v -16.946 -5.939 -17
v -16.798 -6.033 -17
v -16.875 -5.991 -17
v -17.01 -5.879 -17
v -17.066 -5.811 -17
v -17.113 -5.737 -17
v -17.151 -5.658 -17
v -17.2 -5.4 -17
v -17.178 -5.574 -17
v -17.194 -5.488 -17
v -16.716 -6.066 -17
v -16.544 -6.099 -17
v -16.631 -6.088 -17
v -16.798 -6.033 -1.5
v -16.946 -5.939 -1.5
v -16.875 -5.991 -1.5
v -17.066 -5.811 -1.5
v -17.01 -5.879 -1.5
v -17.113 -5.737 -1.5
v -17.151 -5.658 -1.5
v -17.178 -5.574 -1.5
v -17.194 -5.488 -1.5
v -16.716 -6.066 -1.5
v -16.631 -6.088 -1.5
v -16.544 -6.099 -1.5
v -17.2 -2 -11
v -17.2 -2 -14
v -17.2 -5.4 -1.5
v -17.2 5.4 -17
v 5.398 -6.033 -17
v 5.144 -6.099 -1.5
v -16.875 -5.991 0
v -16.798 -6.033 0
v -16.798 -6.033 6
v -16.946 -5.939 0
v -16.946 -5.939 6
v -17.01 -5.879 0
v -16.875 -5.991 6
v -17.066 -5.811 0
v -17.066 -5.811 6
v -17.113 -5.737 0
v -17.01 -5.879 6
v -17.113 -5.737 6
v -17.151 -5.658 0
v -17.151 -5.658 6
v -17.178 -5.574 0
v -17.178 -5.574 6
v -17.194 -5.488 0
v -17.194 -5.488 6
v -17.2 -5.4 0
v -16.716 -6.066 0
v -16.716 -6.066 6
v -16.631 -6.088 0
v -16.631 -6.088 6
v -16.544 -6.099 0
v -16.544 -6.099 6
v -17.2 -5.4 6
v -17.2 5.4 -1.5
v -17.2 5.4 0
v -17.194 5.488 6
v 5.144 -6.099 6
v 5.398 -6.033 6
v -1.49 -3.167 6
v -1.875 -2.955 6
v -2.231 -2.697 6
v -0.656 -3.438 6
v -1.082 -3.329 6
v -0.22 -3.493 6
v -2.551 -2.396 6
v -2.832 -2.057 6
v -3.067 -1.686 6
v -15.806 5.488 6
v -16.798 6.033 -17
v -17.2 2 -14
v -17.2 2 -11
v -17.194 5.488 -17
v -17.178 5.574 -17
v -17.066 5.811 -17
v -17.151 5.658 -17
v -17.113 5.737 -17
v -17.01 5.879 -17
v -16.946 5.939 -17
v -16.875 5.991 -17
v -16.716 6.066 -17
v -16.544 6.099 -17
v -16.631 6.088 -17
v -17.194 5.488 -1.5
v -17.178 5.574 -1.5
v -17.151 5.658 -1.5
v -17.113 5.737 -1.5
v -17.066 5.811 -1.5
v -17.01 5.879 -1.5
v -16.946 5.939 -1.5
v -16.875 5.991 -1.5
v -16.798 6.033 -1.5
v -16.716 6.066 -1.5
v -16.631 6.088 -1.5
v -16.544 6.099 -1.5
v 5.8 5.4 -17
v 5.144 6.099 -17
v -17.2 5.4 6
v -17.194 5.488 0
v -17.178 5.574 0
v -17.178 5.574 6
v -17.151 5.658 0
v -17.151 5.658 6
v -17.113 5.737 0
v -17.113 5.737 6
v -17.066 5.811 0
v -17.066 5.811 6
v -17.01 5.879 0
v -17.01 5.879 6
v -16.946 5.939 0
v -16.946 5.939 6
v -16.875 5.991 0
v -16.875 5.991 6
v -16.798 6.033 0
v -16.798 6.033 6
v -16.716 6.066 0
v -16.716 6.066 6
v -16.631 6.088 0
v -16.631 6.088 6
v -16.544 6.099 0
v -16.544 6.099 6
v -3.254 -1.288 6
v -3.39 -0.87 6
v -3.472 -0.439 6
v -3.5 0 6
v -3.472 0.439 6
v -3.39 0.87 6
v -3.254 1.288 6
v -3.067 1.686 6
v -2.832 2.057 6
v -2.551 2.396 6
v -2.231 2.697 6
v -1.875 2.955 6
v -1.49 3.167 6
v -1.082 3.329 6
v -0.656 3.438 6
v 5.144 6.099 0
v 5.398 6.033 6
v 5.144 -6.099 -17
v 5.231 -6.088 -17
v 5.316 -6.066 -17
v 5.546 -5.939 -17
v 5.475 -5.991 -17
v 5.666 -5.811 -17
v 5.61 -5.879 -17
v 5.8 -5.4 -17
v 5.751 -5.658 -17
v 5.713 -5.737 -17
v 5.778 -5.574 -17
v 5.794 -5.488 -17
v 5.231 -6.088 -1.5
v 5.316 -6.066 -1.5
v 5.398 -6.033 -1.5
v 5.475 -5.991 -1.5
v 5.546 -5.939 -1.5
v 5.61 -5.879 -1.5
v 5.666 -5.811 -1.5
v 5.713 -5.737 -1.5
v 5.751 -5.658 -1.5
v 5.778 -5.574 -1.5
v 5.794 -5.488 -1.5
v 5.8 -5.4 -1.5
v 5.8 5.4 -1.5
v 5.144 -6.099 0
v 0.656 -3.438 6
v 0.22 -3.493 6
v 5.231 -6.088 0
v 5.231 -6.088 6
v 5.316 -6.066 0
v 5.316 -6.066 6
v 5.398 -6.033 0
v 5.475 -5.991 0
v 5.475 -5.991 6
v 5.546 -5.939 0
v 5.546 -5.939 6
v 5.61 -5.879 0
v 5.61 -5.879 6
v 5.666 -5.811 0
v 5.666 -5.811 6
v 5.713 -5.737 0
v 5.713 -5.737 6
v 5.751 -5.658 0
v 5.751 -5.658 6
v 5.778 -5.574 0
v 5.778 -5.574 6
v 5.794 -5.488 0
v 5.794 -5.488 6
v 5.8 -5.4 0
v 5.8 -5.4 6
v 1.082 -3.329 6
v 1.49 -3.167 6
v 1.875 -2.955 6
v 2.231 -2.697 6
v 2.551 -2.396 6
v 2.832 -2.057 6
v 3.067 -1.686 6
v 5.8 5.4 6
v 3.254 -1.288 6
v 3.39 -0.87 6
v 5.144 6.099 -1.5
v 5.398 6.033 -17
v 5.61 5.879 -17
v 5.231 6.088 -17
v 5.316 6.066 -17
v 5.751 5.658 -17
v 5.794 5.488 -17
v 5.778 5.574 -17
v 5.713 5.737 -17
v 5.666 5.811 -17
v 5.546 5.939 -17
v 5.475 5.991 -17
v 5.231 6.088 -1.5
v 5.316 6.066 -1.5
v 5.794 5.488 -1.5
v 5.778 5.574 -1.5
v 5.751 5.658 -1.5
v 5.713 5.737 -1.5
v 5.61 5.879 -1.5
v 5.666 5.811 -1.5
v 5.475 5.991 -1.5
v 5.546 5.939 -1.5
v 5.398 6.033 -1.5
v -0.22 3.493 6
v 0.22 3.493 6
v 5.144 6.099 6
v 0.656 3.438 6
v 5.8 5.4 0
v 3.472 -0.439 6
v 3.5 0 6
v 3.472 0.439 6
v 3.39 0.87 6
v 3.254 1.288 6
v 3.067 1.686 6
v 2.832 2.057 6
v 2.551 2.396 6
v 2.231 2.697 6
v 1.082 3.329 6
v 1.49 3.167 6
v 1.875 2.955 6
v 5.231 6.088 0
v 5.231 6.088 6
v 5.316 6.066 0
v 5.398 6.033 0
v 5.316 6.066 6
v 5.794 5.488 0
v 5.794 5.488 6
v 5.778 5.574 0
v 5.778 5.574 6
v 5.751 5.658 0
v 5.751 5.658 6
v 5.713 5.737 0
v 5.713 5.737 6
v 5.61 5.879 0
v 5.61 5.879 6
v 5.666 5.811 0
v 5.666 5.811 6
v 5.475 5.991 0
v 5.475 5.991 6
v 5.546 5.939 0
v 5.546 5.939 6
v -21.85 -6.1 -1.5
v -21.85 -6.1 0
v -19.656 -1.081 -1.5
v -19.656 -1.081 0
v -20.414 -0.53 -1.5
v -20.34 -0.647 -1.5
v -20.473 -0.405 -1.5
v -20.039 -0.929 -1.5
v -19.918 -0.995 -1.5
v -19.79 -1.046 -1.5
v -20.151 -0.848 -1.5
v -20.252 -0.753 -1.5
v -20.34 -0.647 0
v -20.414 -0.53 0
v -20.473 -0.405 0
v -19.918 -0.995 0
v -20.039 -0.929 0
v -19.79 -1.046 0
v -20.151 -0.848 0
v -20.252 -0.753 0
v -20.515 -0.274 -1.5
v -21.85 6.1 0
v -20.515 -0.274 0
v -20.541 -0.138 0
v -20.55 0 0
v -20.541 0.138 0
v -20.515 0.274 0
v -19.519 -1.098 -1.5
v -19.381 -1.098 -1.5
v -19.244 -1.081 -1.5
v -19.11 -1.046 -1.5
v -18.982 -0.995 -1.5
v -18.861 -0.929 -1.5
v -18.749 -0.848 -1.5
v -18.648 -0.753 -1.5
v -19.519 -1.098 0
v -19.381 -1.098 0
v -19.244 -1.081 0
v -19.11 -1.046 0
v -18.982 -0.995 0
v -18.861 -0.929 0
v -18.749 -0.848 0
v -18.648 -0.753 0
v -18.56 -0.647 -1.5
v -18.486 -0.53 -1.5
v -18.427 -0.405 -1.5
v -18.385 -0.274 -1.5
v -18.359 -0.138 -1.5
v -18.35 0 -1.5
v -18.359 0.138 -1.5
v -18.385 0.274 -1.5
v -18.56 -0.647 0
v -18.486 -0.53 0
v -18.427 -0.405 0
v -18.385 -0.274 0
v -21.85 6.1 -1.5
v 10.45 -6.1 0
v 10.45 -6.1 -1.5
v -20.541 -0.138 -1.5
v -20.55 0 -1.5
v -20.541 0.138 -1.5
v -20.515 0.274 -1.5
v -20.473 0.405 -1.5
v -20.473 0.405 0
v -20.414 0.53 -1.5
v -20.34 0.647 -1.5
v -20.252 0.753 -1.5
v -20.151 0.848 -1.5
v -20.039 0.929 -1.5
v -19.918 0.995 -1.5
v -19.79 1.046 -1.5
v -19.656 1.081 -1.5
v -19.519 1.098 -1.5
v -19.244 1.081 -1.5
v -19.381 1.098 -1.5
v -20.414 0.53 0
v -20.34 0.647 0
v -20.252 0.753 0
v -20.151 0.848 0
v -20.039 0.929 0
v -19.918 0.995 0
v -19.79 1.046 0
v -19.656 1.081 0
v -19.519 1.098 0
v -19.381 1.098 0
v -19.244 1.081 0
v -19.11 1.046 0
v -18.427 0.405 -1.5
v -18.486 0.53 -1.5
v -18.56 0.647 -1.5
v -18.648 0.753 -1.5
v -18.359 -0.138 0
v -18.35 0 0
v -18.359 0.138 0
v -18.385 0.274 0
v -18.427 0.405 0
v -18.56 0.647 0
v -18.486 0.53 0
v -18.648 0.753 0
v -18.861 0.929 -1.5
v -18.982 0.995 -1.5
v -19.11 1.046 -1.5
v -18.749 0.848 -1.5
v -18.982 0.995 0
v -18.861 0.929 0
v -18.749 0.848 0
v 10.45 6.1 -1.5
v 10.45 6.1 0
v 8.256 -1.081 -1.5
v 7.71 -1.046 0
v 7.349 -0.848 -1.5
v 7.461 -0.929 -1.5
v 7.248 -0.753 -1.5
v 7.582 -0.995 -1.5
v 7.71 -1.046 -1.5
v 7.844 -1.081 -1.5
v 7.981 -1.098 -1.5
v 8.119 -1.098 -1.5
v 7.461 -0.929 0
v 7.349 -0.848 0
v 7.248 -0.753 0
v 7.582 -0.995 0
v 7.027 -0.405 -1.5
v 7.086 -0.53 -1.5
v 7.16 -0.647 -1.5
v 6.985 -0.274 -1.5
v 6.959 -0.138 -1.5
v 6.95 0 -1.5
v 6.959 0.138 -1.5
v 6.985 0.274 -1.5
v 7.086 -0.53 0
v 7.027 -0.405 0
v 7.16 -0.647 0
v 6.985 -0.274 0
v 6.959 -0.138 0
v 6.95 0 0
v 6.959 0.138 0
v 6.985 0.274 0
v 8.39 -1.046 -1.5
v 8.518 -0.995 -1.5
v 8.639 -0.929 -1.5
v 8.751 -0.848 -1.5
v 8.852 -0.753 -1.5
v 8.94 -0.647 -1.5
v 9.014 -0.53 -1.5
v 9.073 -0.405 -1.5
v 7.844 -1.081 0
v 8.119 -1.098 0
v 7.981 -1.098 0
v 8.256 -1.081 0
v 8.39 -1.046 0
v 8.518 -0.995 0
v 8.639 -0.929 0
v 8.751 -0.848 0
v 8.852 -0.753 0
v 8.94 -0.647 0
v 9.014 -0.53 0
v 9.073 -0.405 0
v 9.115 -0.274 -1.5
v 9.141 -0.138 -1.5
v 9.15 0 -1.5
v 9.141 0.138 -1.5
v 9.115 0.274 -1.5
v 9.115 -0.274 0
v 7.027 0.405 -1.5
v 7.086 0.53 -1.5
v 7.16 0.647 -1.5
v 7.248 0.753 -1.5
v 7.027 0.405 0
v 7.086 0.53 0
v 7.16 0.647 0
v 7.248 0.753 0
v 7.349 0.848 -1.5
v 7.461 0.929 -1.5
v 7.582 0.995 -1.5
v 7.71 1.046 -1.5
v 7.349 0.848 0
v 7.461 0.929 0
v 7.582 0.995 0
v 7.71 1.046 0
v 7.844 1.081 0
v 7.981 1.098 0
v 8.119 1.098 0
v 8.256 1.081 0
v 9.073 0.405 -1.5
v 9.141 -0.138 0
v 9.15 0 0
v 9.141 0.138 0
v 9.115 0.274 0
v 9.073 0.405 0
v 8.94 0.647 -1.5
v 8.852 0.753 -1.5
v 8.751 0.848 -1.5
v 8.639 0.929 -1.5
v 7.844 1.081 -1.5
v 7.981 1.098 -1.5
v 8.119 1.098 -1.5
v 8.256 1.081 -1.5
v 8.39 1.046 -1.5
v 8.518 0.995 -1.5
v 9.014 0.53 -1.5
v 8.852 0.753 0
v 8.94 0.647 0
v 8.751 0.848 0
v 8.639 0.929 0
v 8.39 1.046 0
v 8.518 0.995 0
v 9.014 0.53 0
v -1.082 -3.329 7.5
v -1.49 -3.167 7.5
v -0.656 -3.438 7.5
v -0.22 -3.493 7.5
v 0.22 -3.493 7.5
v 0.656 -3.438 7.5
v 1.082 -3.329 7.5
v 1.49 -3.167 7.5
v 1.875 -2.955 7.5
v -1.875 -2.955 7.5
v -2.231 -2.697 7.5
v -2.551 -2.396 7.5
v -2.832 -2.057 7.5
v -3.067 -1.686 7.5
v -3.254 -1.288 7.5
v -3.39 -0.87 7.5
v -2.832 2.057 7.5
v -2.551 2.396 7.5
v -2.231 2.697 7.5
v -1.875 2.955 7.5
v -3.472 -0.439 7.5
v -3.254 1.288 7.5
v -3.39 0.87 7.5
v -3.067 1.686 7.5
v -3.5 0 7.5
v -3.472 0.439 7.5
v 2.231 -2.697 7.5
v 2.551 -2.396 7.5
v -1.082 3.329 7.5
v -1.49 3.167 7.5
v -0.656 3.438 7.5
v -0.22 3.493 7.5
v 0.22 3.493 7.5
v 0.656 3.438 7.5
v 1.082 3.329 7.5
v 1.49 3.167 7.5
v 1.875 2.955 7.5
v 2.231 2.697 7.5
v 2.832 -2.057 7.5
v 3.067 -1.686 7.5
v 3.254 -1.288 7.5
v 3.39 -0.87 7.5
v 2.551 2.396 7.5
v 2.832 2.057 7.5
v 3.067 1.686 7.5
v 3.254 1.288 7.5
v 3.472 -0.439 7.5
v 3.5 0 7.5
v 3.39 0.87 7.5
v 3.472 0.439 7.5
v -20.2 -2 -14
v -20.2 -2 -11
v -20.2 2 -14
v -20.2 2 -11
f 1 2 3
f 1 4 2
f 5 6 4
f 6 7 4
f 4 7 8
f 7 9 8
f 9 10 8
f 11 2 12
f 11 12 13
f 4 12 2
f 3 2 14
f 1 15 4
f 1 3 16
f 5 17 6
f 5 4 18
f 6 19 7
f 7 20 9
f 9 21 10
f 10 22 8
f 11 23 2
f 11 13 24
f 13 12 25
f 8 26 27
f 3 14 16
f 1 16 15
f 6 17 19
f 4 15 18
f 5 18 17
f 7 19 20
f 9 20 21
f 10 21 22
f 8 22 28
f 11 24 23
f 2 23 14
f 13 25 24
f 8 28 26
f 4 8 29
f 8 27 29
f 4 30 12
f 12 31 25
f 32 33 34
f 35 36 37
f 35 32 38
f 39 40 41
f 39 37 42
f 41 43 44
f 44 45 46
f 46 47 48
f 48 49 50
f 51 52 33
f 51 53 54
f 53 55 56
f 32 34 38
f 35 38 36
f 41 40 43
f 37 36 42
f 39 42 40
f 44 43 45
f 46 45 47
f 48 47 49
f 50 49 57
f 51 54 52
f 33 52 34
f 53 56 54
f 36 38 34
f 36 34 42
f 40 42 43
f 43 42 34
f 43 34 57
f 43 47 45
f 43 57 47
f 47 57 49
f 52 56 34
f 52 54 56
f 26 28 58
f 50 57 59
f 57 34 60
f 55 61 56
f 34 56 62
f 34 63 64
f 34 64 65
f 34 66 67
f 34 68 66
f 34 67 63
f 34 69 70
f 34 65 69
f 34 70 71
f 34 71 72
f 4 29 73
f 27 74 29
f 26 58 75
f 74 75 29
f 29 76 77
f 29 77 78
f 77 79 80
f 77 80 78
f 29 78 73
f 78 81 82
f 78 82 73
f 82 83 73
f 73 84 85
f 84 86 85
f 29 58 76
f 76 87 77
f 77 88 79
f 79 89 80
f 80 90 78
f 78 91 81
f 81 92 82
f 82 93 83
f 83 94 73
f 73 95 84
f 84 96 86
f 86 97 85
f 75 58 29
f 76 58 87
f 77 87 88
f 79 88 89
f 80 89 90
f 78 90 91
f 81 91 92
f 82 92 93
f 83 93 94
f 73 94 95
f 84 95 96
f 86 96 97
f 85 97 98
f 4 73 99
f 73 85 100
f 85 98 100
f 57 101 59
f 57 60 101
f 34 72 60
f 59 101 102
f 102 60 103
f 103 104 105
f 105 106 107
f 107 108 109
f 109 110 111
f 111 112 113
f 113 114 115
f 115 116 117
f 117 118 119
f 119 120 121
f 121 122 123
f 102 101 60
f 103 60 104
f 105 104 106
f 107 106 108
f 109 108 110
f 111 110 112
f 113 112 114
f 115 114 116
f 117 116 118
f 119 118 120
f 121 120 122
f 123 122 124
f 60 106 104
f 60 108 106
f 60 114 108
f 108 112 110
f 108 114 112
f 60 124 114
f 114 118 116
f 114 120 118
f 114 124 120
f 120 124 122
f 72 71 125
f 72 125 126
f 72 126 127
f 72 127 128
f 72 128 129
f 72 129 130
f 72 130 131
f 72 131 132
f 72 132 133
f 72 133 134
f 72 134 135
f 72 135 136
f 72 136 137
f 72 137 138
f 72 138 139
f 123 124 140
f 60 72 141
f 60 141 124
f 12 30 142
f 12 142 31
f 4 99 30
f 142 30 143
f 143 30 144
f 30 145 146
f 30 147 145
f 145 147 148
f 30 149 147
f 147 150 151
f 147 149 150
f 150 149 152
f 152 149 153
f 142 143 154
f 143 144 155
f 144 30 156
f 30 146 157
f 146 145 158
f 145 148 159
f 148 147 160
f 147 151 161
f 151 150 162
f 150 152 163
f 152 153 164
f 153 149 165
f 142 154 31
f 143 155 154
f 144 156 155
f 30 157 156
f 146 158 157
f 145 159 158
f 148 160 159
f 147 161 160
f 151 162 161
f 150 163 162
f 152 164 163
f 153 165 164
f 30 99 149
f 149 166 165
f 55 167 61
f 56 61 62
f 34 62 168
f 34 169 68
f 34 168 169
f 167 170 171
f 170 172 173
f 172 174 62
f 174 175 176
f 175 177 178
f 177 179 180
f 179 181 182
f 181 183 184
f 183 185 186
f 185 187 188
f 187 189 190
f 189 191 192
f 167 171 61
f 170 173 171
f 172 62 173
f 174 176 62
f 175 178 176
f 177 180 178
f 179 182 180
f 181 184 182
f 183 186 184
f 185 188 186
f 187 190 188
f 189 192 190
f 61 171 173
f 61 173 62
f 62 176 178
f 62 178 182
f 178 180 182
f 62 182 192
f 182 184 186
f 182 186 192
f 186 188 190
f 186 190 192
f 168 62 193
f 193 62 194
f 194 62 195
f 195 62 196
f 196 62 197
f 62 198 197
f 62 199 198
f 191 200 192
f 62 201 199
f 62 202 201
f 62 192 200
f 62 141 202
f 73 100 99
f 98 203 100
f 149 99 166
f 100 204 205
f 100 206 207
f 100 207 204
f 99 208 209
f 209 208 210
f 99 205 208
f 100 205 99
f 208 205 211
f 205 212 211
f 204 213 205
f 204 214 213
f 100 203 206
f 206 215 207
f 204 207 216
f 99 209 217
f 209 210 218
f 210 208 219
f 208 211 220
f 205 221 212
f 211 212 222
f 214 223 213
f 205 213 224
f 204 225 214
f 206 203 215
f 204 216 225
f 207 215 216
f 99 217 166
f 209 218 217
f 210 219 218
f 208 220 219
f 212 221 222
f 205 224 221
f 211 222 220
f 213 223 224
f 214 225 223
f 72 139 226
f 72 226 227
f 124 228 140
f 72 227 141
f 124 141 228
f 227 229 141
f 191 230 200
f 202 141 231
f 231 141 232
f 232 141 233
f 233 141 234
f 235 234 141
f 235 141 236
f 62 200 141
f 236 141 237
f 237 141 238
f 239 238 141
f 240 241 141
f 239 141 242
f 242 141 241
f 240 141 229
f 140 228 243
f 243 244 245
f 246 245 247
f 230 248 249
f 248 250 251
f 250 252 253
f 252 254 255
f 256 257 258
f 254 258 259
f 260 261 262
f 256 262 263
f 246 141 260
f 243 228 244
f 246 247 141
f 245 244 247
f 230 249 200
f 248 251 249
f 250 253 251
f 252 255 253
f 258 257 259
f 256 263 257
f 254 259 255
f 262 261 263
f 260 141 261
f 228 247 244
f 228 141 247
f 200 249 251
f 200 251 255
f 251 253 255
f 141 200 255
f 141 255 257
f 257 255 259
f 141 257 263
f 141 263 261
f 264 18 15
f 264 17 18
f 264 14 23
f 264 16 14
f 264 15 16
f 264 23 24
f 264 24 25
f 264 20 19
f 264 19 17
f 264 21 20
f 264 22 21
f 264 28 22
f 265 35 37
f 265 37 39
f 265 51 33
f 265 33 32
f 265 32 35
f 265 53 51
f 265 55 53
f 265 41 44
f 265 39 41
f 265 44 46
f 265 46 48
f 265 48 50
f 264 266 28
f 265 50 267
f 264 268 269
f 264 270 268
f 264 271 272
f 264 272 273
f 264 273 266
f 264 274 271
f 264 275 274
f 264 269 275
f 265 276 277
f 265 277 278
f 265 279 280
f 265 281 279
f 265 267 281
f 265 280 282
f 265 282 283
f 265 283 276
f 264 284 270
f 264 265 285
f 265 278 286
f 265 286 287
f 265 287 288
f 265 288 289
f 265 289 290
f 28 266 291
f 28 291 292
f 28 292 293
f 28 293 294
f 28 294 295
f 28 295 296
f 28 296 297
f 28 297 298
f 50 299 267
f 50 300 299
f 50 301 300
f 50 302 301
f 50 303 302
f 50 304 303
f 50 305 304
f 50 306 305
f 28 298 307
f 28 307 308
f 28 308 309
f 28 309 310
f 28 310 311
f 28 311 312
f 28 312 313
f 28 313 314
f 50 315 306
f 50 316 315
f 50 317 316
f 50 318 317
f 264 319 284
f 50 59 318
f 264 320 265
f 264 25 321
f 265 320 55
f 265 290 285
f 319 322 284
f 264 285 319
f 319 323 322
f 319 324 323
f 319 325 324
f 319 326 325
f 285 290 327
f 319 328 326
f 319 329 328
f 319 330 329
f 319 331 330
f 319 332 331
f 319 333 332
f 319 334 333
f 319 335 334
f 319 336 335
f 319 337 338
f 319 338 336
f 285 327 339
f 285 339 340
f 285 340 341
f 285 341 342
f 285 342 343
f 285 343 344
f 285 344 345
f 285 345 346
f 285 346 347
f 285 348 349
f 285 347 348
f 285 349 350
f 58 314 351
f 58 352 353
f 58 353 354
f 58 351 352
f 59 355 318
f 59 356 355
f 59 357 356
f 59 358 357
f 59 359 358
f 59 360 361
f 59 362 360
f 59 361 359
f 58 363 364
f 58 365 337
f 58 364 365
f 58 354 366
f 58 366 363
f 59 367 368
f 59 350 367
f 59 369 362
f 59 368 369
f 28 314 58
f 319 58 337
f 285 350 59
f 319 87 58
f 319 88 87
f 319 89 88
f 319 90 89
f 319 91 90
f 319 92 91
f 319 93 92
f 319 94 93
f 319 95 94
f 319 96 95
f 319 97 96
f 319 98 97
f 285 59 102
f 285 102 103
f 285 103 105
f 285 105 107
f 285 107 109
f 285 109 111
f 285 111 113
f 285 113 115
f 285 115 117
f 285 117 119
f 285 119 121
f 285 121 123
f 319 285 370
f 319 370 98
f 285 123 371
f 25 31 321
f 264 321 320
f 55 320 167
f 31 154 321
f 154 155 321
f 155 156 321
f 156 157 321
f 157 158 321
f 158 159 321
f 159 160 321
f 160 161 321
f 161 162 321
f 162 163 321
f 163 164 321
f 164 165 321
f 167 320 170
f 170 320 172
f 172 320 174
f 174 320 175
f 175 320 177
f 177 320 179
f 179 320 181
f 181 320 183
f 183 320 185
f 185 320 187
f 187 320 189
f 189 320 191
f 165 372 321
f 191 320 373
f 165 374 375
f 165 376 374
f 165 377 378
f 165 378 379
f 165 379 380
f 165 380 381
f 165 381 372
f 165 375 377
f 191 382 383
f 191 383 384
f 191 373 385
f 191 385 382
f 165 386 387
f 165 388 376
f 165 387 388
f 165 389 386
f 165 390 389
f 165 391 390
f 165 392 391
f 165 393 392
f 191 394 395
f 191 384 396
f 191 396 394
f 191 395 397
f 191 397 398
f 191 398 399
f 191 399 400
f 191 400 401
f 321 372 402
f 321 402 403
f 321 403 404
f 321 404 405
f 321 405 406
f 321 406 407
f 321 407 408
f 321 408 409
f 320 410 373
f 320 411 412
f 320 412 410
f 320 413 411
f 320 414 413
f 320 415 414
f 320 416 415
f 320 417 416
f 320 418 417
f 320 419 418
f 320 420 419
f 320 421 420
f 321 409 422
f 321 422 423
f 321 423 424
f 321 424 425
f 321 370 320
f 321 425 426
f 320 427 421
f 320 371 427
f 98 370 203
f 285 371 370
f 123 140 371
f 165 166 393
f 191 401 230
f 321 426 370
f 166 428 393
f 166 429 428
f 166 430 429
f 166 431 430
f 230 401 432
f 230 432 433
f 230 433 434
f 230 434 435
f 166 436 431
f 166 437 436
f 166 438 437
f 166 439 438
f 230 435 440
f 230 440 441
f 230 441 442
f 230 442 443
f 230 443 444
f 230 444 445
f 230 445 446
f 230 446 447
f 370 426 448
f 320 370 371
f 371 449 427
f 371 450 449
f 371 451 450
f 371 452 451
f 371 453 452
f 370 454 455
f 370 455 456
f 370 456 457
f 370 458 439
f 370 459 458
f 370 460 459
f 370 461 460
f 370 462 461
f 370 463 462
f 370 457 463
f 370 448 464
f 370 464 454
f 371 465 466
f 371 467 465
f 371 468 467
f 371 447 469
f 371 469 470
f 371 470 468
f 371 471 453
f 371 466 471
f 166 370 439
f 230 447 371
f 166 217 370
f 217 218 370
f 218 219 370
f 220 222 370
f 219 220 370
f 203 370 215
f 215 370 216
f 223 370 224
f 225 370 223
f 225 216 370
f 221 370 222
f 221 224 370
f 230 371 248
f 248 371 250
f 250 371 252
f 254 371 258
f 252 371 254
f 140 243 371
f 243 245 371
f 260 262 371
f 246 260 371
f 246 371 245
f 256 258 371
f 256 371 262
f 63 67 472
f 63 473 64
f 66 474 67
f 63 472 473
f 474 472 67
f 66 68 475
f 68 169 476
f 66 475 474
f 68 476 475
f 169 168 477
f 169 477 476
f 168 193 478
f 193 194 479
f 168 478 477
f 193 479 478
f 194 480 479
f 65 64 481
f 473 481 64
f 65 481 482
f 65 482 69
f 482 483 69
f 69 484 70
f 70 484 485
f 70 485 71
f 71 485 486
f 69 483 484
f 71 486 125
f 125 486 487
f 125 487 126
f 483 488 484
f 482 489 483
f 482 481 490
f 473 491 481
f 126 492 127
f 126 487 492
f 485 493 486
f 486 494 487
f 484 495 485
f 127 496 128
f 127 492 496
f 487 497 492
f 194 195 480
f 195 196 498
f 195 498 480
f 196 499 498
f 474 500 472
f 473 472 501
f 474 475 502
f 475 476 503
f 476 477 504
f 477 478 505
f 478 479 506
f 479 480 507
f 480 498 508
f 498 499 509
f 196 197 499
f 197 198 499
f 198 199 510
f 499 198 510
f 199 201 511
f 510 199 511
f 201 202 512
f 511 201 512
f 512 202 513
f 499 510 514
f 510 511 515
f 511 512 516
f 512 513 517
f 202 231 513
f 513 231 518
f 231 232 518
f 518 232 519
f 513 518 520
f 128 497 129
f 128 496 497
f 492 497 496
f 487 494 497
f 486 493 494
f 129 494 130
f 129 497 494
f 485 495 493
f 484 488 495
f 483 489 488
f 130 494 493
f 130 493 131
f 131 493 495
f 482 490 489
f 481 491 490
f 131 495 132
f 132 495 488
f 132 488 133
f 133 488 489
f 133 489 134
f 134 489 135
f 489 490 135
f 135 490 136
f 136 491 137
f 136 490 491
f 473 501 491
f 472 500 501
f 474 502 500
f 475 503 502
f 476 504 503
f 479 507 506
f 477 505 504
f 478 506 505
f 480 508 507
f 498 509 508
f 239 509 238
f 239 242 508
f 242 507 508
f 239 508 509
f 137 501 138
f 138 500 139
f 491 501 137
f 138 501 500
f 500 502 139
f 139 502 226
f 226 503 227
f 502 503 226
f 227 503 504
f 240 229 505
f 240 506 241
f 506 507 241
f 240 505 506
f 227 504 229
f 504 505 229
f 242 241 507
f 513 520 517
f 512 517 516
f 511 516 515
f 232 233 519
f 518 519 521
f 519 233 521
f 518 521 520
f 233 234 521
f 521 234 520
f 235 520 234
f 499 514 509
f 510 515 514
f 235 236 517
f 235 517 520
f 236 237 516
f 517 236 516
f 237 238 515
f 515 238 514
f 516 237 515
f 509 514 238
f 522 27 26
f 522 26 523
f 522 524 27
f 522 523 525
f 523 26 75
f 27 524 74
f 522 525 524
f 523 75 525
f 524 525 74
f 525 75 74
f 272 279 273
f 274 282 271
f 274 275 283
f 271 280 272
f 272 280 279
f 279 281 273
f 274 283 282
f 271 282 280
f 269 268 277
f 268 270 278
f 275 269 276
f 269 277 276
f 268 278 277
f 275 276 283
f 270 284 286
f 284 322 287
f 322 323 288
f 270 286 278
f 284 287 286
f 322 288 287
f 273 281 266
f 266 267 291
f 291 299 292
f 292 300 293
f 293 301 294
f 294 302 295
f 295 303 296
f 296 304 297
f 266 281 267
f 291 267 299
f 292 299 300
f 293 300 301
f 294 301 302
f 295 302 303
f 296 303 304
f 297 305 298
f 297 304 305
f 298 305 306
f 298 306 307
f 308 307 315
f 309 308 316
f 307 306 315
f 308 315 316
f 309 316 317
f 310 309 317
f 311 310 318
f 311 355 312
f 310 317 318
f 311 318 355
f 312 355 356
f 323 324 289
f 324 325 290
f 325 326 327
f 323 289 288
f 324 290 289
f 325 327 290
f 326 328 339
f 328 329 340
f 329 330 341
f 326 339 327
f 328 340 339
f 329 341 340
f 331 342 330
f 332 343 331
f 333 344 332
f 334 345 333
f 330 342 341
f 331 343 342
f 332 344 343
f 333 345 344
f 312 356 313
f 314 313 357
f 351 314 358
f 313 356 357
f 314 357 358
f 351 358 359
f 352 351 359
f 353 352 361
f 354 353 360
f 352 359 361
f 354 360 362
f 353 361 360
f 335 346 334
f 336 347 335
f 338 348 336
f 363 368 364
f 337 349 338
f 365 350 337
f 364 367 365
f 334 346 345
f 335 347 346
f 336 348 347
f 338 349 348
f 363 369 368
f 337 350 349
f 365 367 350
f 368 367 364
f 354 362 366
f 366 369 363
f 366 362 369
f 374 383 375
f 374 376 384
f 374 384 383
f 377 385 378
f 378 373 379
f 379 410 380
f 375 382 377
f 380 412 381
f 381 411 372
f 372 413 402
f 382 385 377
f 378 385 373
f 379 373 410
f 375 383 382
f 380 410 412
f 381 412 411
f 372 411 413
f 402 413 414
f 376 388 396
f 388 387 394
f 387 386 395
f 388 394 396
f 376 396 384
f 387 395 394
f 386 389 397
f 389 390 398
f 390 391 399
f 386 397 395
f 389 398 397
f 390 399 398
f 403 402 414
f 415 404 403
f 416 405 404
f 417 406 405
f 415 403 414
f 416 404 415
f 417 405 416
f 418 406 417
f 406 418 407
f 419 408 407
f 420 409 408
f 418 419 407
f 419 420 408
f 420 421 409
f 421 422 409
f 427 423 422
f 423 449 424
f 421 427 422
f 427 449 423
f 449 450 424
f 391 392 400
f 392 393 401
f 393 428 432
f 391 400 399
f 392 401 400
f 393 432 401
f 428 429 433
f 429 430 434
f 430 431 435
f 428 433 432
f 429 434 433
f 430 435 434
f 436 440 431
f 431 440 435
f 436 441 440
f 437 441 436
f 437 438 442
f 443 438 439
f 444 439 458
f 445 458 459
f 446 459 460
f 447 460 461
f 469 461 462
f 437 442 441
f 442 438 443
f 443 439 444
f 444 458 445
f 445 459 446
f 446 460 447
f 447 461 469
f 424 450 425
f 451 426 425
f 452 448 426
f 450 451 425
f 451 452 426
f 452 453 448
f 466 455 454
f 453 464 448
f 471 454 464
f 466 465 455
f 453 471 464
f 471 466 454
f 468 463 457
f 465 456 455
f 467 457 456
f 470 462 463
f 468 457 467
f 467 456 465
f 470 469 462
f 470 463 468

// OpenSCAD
$fn = 50;

difference() {
	union() {
		translate(v = [-5.7, 0, -17]) {
			hull() {
				translate(v = [-10.8, 5.3999999999999995, 0]) {
					cylinder(h = 23, r = 0.7);
				}
				translate(v = [10.8, 5.3999999999999995, 0]) {
					cylinder(h = 23, r = 0.7);
				}
				translate(v = [-10.8, -5.3999999999999995, 0]) {
					cylinder(h = 23, r = 0.7);
				}
				translate(v = [10.8, -5.3999999999999995, 0]) {
					cylinder(h = 23, r = 0.7);
				}
			}
		}
		translate(v = [-21.849999999999998, -6.1, -1.5]) {
			cube(size = [32.3, 12.2, 1.5]);
		}
		translate(v = [0, 0, 6.0]) {
			cylinder(h = 1.5, r = 3.5);
		}
		translate(v = [-20.2, -2.0, -14]) {
			cube(size = [4, 4, 3]);
		}
	}
	union() {
		translate(v = [-19.45, 0, -4]) {
			cylinder(h = 5, r = 1.1);
		}
		translate(v = [8.05, 0, -4]) {
			cylinder(h = 5, r = 1.1);
		}
	}
}
